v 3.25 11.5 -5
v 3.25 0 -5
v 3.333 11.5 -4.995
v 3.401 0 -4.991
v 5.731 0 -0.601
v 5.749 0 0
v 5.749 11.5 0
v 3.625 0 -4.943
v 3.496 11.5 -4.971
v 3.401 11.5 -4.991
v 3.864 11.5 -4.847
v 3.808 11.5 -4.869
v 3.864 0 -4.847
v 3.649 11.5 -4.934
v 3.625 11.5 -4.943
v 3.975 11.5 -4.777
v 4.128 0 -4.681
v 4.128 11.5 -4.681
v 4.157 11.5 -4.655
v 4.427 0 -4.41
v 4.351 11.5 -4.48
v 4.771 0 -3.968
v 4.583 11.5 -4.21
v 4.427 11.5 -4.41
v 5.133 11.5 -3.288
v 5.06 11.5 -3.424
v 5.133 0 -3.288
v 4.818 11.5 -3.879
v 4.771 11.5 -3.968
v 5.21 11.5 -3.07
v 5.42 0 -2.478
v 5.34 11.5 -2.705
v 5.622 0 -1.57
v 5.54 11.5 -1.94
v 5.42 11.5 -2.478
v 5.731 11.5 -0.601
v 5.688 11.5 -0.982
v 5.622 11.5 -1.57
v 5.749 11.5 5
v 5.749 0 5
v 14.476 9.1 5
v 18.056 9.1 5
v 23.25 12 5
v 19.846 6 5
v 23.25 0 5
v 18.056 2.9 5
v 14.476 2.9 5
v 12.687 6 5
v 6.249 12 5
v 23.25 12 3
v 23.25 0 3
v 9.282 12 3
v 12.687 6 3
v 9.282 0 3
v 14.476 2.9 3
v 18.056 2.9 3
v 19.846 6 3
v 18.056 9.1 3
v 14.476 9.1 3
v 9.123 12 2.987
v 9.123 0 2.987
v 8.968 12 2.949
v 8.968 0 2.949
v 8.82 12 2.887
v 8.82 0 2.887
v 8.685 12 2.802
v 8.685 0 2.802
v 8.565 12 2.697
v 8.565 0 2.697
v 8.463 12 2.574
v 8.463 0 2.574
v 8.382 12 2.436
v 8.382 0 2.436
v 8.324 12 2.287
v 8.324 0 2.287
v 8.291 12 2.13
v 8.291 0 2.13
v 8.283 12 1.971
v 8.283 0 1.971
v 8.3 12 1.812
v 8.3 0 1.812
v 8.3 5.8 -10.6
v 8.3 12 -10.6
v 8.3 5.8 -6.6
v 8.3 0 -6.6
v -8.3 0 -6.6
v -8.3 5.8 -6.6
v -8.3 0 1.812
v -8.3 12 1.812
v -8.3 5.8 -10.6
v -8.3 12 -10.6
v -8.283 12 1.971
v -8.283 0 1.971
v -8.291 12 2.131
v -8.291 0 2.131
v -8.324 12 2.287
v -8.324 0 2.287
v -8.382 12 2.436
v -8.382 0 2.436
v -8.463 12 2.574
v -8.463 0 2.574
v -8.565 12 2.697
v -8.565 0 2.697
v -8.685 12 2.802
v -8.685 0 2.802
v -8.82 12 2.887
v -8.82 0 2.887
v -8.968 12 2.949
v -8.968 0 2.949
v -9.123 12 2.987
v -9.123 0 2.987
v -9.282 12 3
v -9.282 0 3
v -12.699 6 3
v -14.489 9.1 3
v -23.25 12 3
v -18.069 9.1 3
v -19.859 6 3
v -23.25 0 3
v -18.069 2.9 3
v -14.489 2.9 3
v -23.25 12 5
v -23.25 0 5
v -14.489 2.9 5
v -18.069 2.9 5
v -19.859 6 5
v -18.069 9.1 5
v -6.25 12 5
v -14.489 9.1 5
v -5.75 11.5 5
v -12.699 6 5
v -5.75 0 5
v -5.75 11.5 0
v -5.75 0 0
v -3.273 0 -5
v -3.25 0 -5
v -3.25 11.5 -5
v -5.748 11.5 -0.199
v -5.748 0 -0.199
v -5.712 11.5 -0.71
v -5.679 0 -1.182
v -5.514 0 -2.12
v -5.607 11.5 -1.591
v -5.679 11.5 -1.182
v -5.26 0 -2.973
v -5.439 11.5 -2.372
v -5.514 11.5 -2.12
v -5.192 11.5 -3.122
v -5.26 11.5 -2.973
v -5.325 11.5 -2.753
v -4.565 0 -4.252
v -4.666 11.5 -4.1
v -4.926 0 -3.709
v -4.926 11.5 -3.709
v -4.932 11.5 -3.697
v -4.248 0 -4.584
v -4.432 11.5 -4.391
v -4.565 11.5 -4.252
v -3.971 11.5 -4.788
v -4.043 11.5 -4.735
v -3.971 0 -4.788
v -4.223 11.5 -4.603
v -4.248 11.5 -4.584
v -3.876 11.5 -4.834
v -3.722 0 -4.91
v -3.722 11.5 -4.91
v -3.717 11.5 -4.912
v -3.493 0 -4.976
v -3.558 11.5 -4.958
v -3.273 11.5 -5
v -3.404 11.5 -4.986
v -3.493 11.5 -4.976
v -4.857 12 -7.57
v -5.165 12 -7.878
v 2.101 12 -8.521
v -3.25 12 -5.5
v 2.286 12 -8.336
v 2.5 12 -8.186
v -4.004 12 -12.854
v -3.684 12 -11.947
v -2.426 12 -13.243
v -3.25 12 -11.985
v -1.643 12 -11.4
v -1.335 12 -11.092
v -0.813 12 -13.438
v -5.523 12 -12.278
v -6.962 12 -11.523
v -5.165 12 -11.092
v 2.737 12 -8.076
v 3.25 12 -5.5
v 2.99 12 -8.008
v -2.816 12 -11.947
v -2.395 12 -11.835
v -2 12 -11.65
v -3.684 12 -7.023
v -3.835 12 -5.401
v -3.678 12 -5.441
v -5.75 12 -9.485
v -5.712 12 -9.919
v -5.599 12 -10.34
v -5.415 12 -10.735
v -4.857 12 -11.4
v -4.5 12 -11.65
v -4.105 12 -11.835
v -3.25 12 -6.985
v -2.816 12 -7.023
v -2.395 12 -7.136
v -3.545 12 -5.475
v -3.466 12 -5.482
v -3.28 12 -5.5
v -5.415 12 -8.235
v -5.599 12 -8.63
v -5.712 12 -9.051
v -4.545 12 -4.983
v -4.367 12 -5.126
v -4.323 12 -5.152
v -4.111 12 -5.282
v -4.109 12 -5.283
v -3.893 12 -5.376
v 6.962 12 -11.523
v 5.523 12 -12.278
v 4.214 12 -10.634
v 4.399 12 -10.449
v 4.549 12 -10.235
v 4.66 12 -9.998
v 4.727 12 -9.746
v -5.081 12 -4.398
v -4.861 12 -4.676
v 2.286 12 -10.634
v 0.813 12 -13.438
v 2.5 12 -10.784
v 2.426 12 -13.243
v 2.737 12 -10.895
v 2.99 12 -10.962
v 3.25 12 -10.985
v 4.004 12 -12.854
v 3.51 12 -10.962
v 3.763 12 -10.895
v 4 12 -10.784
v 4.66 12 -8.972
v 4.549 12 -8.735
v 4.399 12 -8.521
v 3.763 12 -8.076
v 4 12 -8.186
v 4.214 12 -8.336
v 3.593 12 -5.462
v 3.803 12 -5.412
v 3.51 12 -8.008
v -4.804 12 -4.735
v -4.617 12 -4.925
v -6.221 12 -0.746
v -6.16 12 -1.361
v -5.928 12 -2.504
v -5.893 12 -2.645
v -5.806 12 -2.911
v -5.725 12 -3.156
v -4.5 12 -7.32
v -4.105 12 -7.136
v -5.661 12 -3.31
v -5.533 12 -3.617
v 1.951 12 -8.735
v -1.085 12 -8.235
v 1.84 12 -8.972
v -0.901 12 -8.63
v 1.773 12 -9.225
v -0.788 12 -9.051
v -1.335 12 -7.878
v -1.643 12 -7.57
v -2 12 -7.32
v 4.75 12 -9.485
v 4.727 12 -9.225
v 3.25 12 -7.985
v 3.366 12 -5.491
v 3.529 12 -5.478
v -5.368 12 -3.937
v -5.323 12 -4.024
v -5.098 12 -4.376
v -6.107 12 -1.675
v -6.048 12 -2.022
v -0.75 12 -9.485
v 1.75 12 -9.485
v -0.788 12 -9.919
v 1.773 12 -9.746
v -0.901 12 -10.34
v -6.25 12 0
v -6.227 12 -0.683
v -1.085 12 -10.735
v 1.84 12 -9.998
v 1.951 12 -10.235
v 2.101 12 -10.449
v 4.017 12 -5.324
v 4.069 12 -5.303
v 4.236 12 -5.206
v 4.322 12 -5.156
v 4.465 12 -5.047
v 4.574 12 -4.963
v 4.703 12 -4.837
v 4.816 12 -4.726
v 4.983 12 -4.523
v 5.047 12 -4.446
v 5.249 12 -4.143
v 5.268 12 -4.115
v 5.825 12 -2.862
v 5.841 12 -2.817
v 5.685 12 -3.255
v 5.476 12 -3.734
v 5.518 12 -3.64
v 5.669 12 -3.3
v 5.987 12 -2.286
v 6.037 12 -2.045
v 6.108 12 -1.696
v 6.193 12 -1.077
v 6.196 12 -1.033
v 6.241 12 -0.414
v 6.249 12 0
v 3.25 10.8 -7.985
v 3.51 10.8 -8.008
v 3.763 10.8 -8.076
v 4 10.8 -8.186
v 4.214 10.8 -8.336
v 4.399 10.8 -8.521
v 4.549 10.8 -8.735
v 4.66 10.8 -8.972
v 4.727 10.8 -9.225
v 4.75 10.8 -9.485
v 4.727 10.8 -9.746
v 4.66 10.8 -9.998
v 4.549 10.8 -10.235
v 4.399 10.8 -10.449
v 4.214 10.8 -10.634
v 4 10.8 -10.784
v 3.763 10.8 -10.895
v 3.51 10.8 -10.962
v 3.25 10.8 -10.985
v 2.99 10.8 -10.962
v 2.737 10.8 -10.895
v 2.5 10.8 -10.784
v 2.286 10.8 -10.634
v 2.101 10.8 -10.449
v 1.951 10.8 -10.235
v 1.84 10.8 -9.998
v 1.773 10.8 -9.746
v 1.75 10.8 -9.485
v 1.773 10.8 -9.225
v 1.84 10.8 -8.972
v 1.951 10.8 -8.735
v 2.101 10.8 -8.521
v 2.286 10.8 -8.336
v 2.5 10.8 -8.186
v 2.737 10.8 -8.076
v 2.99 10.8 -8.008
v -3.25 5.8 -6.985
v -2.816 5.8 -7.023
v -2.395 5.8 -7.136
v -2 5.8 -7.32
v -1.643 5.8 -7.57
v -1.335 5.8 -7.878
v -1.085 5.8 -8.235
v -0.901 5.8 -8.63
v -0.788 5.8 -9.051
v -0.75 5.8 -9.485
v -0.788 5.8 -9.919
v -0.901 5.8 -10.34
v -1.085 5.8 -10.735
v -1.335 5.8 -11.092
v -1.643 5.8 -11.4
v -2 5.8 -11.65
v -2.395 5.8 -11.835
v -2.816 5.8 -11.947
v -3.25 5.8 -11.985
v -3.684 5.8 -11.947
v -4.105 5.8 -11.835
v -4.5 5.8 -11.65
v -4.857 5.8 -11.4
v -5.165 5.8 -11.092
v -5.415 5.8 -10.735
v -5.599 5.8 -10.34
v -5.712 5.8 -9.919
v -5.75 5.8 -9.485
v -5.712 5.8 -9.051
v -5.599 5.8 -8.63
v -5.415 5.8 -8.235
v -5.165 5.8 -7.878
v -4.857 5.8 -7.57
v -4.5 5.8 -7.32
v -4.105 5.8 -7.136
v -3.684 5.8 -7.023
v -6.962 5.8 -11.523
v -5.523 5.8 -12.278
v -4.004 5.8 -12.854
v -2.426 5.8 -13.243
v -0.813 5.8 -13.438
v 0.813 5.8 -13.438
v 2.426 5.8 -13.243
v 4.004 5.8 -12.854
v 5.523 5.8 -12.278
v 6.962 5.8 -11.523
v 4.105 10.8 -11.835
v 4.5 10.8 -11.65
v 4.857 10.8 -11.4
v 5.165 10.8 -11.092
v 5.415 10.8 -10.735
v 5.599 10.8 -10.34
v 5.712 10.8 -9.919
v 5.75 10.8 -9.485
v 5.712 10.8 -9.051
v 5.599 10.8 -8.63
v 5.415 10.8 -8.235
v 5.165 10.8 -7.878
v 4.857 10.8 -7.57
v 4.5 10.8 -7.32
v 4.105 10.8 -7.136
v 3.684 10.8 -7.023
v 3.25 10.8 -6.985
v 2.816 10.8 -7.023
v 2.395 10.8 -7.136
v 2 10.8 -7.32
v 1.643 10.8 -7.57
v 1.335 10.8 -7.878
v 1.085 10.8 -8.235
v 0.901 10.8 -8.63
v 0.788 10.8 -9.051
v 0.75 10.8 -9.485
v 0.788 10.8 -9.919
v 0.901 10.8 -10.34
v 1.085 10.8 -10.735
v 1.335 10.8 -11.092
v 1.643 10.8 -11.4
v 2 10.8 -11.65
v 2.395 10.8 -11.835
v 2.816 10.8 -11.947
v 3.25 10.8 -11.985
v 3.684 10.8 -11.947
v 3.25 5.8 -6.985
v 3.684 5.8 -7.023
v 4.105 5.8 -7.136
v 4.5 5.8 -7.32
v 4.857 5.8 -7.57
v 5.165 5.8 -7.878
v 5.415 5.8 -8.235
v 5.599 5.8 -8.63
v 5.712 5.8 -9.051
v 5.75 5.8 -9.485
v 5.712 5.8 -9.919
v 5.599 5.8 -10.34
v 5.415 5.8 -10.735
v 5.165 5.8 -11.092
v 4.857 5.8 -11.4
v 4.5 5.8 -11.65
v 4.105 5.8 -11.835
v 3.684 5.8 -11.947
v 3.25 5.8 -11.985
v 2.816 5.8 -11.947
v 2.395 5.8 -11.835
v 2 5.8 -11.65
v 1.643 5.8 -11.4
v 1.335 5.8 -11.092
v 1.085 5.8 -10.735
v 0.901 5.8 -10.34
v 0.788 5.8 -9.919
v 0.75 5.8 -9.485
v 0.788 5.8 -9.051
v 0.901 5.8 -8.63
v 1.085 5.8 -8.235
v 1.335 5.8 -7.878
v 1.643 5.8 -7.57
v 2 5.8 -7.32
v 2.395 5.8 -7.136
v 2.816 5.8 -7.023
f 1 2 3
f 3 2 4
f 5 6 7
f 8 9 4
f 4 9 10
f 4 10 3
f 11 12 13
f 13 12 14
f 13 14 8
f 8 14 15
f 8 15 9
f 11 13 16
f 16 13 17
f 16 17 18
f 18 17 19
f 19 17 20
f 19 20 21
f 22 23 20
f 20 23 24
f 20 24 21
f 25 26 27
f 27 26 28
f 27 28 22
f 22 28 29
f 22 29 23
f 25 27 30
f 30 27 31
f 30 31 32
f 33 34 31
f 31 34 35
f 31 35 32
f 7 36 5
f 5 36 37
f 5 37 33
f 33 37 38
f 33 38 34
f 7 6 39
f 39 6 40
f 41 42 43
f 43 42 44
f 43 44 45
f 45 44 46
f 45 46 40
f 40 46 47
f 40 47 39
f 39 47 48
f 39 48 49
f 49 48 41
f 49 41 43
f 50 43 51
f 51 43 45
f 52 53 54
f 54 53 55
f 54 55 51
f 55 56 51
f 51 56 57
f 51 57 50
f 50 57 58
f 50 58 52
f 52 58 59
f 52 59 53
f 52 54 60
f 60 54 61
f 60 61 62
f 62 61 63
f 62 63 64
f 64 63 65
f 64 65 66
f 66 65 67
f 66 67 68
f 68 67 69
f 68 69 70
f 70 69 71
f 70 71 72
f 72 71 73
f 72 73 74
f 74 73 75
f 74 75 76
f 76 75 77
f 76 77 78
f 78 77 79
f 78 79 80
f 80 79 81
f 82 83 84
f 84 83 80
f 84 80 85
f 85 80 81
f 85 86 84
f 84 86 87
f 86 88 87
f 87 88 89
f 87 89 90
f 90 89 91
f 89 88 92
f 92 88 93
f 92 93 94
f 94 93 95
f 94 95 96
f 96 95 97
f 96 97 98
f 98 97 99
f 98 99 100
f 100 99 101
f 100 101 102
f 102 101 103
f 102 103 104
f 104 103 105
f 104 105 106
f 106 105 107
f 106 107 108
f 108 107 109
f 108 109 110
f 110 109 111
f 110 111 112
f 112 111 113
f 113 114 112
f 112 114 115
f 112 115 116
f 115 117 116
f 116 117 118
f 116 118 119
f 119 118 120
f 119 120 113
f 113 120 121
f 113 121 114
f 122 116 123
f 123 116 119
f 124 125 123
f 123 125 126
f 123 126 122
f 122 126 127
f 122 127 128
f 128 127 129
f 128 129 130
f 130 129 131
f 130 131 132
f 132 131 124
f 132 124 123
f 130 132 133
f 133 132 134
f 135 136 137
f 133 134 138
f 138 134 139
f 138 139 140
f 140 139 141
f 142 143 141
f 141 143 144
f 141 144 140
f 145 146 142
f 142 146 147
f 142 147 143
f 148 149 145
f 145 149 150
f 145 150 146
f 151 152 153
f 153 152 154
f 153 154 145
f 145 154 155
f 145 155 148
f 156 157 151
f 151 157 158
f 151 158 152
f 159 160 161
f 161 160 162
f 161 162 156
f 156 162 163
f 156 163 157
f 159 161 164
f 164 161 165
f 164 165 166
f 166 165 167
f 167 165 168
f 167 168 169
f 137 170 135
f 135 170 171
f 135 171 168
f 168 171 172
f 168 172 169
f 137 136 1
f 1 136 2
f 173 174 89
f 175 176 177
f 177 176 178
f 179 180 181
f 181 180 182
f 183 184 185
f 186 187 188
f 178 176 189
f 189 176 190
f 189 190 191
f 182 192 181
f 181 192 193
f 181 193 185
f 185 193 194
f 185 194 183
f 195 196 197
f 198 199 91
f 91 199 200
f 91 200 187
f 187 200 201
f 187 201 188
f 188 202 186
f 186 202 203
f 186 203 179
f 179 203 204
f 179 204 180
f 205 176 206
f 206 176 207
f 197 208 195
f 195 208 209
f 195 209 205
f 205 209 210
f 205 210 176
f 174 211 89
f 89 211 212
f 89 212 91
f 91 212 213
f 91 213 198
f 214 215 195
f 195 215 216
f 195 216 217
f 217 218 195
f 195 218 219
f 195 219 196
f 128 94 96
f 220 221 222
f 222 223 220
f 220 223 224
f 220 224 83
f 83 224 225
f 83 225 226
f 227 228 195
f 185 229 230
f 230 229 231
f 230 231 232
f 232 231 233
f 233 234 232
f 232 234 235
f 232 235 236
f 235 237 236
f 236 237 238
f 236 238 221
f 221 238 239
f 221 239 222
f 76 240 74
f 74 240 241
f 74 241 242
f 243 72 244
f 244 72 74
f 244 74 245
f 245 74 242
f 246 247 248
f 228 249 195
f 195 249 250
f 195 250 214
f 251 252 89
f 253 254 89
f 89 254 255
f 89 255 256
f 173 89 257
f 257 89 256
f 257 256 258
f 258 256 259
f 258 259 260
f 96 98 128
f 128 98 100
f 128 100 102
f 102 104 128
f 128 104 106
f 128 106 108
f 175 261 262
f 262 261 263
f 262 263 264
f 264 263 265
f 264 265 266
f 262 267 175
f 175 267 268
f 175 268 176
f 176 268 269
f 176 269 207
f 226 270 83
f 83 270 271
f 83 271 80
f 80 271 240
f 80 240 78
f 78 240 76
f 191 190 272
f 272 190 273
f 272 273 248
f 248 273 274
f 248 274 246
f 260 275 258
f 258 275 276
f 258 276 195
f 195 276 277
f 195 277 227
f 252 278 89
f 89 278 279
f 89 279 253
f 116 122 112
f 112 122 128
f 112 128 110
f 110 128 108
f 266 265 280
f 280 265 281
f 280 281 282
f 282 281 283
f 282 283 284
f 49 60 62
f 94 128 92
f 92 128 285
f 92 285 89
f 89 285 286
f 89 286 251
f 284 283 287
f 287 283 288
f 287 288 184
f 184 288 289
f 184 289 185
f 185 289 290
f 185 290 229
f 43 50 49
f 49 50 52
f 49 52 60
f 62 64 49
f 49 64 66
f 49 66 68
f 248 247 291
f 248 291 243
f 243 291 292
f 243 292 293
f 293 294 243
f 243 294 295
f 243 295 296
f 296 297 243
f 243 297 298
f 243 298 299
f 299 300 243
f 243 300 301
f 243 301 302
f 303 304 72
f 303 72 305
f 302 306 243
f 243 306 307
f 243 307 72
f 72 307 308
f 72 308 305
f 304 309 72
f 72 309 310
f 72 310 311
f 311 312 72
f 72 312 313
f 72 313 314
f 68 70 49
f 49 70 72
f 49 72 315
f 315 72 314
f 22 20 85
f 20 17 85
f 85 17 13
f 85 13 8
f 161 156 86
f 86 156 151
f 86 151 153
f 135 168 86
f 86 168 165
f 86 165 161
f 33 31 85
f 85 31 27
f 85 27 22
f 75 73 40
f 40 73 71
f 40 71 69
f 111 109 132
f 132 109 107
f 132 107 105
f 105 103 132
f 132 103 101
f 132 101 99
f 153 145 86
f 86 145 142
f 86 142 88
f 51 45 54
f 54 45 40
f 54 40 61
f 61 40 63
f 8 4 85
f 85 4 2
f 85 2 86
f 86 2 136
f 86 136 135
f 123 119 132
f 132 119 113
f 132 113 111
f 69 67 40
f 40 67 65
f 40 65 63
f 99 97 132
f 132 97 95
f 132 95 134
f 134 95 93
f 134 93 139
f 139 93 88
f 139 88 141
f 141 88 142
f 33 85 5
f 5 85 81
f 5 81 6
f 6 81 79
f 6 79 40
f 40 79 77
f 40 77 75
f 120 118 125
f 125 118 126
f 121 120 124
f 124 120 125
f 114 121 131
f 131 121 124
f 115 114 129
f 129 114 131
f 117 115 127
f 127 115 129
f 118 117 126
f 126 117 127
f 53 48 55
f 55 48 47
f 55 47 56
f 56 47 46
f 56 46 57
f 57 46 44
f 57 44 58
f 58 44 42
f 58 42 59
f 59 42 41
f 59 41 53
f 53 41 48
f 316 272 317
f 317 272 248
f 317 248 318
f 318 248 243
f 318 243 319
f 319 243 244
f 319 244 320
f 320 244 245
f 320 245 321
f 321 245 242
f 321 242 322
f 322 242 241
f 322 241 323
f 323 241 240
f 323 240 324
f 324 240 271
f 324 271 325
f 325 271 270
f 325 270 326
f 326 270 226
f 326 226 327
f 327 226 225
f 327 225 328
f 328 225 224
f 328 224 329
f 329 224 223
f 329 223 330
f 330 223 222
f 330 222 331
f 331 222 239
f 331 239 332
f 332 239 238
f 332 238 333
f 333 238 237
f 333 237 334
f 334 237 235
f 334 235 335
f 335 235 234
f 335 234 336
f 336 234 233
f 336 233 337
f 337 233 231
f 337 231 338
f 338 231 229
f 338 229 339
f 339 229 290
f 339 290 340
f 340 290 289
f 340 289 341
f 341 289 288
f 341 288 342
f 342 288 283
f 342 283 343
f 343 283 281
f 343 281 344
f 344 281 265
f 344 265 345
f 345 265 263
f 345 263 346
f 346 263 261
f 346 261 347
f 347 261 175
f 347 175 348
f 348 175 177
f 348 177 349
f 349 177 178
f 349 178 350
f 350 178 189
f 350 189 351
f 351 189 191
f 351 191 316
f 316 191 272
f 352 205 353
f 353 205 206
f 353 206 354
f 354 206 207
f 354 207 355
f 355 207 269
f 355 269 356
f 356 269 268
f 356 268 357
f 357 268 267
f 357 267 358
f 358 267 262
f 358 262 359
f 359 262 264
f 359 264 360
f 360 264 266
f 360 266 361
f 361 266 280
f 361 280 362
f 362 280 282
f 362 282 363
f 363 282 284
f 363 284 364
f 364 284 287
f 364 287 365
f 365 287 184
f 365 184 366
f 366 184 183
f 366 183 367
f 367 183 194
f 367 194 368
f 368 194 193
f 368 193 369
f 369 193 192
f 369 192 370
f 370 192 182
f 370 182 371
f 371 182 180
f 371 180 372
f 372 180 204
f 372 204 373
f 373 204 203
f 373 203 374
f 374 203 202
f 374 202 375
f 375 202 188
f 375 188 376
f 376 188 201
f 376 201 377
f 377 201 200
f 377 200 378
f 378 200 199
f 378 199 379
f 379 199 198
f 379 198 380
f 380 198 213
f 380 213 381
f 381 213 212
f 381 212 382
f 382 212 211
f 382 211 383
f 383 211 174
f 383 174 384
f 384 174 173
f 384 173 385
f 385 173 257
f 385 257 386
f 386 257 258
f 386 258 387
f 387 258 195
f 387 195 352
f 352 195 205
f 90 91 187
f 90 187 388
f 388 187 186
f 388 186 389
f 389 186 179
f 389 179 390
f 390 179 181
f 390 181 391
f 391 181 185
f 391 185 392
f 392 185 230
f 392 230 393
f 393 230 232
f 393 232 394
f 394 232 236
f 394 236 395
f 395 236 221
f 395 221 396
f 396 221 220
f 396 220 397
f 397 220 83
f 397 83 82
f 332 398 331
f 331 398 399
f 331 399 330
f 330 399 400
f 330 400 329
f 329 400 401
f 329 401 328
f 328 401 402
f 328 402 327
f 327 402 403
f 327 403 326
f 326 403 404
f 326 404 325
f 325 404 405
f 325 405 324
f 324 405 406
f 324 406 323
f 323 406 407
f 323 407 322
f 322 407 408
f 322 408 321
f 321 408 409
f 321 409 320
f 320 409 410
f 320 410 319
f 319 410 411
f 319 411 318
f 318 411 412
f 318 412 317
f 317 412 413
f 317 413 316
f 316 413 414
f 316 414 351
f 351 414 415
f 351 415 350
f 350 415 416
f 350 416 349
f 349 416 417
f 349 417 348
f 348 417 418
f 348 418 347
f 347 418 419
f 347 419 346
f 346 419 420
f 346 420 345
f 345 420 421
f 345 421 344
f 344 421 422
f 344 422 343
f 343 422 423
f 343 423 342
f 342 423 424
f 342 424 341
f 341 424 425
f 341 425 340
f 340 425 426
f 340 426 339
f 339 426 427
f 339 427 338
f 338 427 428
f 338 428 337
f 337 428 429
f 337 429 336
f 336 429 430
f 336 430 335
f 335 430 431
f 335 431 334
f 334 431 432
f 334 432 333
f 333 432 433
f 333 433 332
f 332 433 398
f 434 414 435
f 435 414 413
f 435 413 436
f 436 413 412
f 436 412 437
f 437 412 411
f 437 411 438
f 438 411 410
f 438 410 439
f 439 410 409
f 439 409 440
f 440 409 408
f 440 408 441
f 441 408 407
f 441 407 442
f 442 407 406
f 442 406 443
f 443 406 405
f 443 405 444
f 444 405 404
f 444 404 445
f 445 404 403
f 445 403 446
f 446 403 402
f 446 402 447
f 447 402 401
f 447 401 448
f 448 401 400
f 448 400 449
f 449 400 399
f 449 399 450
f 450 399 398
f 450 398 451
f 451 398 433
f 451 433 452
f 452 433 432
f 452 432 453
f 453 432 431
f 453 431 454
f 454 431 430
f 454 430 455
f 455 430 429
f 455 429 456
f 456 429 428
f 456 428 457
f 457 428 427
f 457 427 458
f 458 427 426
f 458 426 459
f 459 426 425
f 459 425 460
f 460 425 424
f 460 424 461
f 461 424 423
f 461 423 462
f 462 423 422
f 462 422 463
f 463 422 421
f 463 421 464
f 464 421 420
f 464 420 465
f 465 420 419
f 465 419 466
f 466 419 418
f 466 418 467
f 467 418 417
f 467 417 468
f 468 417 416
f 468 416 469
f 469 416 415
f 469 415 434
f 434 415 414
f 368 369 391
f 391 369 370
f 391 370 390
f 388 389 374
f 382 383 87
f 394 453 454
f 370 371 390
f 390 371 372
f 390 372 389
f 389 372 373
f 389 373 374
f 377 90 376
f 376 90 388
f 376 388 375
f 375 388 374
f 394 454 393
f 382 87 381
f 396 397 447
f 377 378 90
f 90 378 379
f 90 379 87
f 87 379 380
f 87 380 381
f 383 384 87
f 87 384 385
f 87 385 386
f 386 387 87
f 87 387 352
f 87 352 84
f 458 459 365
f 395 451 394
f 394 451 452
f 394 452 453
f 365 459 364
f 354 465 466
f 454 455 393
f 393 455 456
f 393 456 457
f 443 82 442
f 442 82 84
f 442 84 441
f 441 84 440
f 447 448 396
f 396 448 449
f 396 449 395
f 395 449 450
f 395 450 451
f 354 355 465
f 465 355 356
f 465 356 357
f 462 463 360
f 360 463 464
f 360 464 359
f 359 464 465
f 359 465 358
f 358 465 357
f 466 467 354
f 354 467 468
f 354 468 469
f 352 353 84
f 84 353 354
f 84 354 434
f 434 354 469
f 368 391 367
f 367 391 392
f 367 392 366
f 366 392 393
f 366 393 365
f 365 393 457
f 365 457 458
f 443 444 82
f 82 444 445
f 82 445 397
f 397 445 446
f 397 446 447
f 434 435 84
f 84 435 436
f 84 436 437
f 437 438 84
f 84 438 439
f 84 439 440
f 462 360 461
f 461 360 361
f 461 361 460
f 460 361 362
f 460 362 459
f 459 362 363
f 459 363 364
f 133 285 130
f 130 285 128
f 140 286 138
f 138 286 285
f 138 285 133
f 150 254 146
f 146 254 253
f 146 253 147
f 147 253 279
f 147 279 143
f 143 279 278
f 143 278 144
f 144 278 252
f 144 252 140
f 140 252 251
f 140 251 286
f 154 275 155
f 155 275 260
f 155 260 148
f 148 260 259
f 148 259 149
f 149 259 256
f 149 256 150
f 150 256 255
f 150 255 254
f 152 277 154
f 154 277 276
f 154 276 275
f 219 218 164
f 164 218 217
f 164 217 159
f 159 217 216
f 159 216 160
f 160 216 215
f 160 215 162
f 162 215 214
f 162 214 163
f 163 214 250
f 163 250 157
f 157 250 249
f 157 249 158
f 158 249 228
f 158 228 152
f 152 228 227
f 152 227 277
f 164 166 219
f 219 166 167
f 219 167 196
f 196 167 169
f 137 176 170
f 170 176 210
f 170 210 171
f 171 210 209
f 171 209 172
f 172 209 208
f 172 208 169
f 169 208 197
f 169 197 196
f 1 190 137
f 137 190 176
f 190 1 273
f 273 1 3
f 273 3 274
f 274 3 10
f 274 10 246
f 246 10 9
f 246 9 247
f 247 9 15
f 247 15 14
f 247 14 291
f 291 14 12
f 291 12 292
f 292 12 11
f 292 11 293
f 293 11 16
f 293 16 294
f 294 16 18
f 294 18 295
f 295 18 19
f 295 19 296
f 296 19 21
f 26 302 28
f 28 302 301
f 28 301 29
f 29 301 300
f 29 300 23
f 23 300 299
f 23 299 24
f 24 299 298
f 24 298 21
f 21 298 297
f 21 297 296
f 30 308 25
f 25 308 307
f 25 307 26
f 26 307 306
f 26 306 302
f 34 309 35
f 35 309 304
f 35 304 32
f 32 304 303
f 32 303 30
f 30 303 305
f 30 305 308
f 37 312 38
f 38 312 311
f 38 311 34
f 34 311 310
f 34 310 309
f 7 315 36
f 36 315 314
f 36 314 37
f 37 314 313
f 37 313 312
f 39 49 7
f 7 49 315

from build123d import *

# Parameters (mm, degrees)
BOSS_EXTRUDE1_DEPTH = 12
CUT_EXTRUDE1_DEPTH  = 10
SKETCH3_R           = 2.5
SKETCH3_R_2         = 1.5
BOSS_EXTRUDE2_DEPTH = 1.2
SKETCH4_R           = 2.5
BOSS_EXTRUDE3_DEPTH = 5
CHAMFER1_SIZE       = 0.5


with BuildPart() as part:
    # Sketch1 → Boss-Extrude1 (new body)
    with BuildSketch(Plane(origin=(0, 0, 0), x_dir=(1, 0, 0), z_dir=(0, 1, 0))):
        with BuildLine():
            Line((-23.25, -5), (-5.749755012, -5))
            Line((-5.749755012, -5), (-5.749755012, 0))
            add(Edge.make_bspline(
                [(-3.25, 5), (-5.749755012, 5), (-5.749755012, 0)],
                knots=[0, 0, 0, 1.570796327, 1.570796327, 1.570796327], degree=2, weights=[1, 0.707106781, 1]))
            Line((-3.25, 5), (3.25, 5))
            add(Edge.make_bspline(
                [(5.748694825, 0), (5.748694825, 5), (3.25, 5)],
                knots=[4.71238898, 4.71238898, 4.71238898, 6.283185307, 6.283185307, 6.283185307], degree=2, weights=[1, 0.707106781, 1]))
            Line((5.748694825, 0), (5.748694825, -5))
            Line((5.748694825, -5), (23.25, -5))
            Line((23.25, -5), (23.25, -3))
            Line((23.25, -3), (9.282157642, -3))
            ThreePointArc((9.282157642, -3), (8.511424396, -2.637157958), (8.3, -1.811940526))
            Line((8.3, -1.811940526), (8.3, 6.6))
            Line((8.3, 6.6), (-8.3, 6.6))
            Line((-8.3, 6.6), (-8.3, -1.812055437))
            ThreePointArc((-8.3, -1.812055437), (-8.511483666, -2.637203044), (-9.282179638, -3))
            Line((-9.282179638, -3), (-23.25, -3))
            Line((-23.25, -3), (-23.25, -5))
        make_face()
    extrude(amount=BOSS_EXTRUDE1_DEPTH)

    # Sketch2 → Cut-Extrude1 (cut)
    with BuildSketch(Plane(origin=(0, 0, 3), x_dir=(-1, 0, 0), z_dir=(0, 0, -1))):
        Polygon((19.85850269, 6), (18.068716856, 9.1), (14.489145187, 9.1), (12.699359352, 6), (14.489145187, 2.9), (18.068716856, 2.9), align=None)
        Polygon((-12.686507152, 6), (-14.476292987, 9.1), (-18.055864656, 9.1), (-19.84565049, 6), (-18.055864656, 2.9), (-14.476292987, 2.9), align=None)
    extrude(amount=-CUT_EXTRUDE1_DEPTH, mode=Mode.SUBTRACT)

    # Sketch3 → Boss-Extrude2 (add)
    with BuildSketch(Plane(origin=(0, 12, 0), x_dir=(1, 0, 0), z_dir=(0, 1, 0))):
        with BuildLine():
            Line((-8.3, 6.6), (8.3, 6.6))
            Line((8.3, 6.6), (8.3, 10.6))
            ThreePointArc((8.3, 10.6), (0, 13.462912018), (-8.3, 10.6))
            Line((-8.3, 10.6), (-8.3, 6.6))
        make_face()
        with Locations(Location((-3.25, 9.48526903, 0), (0, 0, 270))):
            Circle(SKETCH3_R, mode=Mode.SUBTRACT)
        with Locations(Location((3.25, 9.48526903, 0), (0, 0, 270))):
            Circle(SKETCH3_R_2, mode=Mode.SUBTRACT)
    extrude(amount=-BOSS_EXTRUDE2_DEPTH)

    # Sketch4 → Boss-Extrude3 (add)
    with BuildSketch(Plane.XZ.offset(-10.8)):
        with BuildLine():
            Line((8.3, -6.6), (-8.3, -6.6))
            Line((-8.3, -6.6), (-8.3, -10.6))
            ThreePointArc((-8.3, -10.6), (0, -13.462912018), (8.3, -10.6))
            Line((8.3, -10.6), (8.3, -6.6))
        make_face()
        with Locations(Location((-3.25, -9.48526903, 0), (0, 0, 90))):
            Circle(SKETCH4_R, mode=Mode.SUBTRACT)
        with Locations(Location((3.25, -9.48526903, 0), (0, 0, 270))):
            Circle(SKETCH4_R, mode=Mode.SUBTRACT)
    extrude(amount=BOSS_EXTRUDE3_DEPTH)

    # Chamfer1
    chamfer1_edges = [part.edges().sort_by_distance(p)[0] for p in [
        (0, 12, -5),
        (-5.260112096, 12, -2.972310439),
        (5.259369228, 12, -2.972013605),
        (-5.749755012, 12, 2.5),
        (5.748694825, 12, 2.5),
    ]]
    chamfer(chamfer1_edges, length=CHAMFER1_SIZE)


solid = part.part
